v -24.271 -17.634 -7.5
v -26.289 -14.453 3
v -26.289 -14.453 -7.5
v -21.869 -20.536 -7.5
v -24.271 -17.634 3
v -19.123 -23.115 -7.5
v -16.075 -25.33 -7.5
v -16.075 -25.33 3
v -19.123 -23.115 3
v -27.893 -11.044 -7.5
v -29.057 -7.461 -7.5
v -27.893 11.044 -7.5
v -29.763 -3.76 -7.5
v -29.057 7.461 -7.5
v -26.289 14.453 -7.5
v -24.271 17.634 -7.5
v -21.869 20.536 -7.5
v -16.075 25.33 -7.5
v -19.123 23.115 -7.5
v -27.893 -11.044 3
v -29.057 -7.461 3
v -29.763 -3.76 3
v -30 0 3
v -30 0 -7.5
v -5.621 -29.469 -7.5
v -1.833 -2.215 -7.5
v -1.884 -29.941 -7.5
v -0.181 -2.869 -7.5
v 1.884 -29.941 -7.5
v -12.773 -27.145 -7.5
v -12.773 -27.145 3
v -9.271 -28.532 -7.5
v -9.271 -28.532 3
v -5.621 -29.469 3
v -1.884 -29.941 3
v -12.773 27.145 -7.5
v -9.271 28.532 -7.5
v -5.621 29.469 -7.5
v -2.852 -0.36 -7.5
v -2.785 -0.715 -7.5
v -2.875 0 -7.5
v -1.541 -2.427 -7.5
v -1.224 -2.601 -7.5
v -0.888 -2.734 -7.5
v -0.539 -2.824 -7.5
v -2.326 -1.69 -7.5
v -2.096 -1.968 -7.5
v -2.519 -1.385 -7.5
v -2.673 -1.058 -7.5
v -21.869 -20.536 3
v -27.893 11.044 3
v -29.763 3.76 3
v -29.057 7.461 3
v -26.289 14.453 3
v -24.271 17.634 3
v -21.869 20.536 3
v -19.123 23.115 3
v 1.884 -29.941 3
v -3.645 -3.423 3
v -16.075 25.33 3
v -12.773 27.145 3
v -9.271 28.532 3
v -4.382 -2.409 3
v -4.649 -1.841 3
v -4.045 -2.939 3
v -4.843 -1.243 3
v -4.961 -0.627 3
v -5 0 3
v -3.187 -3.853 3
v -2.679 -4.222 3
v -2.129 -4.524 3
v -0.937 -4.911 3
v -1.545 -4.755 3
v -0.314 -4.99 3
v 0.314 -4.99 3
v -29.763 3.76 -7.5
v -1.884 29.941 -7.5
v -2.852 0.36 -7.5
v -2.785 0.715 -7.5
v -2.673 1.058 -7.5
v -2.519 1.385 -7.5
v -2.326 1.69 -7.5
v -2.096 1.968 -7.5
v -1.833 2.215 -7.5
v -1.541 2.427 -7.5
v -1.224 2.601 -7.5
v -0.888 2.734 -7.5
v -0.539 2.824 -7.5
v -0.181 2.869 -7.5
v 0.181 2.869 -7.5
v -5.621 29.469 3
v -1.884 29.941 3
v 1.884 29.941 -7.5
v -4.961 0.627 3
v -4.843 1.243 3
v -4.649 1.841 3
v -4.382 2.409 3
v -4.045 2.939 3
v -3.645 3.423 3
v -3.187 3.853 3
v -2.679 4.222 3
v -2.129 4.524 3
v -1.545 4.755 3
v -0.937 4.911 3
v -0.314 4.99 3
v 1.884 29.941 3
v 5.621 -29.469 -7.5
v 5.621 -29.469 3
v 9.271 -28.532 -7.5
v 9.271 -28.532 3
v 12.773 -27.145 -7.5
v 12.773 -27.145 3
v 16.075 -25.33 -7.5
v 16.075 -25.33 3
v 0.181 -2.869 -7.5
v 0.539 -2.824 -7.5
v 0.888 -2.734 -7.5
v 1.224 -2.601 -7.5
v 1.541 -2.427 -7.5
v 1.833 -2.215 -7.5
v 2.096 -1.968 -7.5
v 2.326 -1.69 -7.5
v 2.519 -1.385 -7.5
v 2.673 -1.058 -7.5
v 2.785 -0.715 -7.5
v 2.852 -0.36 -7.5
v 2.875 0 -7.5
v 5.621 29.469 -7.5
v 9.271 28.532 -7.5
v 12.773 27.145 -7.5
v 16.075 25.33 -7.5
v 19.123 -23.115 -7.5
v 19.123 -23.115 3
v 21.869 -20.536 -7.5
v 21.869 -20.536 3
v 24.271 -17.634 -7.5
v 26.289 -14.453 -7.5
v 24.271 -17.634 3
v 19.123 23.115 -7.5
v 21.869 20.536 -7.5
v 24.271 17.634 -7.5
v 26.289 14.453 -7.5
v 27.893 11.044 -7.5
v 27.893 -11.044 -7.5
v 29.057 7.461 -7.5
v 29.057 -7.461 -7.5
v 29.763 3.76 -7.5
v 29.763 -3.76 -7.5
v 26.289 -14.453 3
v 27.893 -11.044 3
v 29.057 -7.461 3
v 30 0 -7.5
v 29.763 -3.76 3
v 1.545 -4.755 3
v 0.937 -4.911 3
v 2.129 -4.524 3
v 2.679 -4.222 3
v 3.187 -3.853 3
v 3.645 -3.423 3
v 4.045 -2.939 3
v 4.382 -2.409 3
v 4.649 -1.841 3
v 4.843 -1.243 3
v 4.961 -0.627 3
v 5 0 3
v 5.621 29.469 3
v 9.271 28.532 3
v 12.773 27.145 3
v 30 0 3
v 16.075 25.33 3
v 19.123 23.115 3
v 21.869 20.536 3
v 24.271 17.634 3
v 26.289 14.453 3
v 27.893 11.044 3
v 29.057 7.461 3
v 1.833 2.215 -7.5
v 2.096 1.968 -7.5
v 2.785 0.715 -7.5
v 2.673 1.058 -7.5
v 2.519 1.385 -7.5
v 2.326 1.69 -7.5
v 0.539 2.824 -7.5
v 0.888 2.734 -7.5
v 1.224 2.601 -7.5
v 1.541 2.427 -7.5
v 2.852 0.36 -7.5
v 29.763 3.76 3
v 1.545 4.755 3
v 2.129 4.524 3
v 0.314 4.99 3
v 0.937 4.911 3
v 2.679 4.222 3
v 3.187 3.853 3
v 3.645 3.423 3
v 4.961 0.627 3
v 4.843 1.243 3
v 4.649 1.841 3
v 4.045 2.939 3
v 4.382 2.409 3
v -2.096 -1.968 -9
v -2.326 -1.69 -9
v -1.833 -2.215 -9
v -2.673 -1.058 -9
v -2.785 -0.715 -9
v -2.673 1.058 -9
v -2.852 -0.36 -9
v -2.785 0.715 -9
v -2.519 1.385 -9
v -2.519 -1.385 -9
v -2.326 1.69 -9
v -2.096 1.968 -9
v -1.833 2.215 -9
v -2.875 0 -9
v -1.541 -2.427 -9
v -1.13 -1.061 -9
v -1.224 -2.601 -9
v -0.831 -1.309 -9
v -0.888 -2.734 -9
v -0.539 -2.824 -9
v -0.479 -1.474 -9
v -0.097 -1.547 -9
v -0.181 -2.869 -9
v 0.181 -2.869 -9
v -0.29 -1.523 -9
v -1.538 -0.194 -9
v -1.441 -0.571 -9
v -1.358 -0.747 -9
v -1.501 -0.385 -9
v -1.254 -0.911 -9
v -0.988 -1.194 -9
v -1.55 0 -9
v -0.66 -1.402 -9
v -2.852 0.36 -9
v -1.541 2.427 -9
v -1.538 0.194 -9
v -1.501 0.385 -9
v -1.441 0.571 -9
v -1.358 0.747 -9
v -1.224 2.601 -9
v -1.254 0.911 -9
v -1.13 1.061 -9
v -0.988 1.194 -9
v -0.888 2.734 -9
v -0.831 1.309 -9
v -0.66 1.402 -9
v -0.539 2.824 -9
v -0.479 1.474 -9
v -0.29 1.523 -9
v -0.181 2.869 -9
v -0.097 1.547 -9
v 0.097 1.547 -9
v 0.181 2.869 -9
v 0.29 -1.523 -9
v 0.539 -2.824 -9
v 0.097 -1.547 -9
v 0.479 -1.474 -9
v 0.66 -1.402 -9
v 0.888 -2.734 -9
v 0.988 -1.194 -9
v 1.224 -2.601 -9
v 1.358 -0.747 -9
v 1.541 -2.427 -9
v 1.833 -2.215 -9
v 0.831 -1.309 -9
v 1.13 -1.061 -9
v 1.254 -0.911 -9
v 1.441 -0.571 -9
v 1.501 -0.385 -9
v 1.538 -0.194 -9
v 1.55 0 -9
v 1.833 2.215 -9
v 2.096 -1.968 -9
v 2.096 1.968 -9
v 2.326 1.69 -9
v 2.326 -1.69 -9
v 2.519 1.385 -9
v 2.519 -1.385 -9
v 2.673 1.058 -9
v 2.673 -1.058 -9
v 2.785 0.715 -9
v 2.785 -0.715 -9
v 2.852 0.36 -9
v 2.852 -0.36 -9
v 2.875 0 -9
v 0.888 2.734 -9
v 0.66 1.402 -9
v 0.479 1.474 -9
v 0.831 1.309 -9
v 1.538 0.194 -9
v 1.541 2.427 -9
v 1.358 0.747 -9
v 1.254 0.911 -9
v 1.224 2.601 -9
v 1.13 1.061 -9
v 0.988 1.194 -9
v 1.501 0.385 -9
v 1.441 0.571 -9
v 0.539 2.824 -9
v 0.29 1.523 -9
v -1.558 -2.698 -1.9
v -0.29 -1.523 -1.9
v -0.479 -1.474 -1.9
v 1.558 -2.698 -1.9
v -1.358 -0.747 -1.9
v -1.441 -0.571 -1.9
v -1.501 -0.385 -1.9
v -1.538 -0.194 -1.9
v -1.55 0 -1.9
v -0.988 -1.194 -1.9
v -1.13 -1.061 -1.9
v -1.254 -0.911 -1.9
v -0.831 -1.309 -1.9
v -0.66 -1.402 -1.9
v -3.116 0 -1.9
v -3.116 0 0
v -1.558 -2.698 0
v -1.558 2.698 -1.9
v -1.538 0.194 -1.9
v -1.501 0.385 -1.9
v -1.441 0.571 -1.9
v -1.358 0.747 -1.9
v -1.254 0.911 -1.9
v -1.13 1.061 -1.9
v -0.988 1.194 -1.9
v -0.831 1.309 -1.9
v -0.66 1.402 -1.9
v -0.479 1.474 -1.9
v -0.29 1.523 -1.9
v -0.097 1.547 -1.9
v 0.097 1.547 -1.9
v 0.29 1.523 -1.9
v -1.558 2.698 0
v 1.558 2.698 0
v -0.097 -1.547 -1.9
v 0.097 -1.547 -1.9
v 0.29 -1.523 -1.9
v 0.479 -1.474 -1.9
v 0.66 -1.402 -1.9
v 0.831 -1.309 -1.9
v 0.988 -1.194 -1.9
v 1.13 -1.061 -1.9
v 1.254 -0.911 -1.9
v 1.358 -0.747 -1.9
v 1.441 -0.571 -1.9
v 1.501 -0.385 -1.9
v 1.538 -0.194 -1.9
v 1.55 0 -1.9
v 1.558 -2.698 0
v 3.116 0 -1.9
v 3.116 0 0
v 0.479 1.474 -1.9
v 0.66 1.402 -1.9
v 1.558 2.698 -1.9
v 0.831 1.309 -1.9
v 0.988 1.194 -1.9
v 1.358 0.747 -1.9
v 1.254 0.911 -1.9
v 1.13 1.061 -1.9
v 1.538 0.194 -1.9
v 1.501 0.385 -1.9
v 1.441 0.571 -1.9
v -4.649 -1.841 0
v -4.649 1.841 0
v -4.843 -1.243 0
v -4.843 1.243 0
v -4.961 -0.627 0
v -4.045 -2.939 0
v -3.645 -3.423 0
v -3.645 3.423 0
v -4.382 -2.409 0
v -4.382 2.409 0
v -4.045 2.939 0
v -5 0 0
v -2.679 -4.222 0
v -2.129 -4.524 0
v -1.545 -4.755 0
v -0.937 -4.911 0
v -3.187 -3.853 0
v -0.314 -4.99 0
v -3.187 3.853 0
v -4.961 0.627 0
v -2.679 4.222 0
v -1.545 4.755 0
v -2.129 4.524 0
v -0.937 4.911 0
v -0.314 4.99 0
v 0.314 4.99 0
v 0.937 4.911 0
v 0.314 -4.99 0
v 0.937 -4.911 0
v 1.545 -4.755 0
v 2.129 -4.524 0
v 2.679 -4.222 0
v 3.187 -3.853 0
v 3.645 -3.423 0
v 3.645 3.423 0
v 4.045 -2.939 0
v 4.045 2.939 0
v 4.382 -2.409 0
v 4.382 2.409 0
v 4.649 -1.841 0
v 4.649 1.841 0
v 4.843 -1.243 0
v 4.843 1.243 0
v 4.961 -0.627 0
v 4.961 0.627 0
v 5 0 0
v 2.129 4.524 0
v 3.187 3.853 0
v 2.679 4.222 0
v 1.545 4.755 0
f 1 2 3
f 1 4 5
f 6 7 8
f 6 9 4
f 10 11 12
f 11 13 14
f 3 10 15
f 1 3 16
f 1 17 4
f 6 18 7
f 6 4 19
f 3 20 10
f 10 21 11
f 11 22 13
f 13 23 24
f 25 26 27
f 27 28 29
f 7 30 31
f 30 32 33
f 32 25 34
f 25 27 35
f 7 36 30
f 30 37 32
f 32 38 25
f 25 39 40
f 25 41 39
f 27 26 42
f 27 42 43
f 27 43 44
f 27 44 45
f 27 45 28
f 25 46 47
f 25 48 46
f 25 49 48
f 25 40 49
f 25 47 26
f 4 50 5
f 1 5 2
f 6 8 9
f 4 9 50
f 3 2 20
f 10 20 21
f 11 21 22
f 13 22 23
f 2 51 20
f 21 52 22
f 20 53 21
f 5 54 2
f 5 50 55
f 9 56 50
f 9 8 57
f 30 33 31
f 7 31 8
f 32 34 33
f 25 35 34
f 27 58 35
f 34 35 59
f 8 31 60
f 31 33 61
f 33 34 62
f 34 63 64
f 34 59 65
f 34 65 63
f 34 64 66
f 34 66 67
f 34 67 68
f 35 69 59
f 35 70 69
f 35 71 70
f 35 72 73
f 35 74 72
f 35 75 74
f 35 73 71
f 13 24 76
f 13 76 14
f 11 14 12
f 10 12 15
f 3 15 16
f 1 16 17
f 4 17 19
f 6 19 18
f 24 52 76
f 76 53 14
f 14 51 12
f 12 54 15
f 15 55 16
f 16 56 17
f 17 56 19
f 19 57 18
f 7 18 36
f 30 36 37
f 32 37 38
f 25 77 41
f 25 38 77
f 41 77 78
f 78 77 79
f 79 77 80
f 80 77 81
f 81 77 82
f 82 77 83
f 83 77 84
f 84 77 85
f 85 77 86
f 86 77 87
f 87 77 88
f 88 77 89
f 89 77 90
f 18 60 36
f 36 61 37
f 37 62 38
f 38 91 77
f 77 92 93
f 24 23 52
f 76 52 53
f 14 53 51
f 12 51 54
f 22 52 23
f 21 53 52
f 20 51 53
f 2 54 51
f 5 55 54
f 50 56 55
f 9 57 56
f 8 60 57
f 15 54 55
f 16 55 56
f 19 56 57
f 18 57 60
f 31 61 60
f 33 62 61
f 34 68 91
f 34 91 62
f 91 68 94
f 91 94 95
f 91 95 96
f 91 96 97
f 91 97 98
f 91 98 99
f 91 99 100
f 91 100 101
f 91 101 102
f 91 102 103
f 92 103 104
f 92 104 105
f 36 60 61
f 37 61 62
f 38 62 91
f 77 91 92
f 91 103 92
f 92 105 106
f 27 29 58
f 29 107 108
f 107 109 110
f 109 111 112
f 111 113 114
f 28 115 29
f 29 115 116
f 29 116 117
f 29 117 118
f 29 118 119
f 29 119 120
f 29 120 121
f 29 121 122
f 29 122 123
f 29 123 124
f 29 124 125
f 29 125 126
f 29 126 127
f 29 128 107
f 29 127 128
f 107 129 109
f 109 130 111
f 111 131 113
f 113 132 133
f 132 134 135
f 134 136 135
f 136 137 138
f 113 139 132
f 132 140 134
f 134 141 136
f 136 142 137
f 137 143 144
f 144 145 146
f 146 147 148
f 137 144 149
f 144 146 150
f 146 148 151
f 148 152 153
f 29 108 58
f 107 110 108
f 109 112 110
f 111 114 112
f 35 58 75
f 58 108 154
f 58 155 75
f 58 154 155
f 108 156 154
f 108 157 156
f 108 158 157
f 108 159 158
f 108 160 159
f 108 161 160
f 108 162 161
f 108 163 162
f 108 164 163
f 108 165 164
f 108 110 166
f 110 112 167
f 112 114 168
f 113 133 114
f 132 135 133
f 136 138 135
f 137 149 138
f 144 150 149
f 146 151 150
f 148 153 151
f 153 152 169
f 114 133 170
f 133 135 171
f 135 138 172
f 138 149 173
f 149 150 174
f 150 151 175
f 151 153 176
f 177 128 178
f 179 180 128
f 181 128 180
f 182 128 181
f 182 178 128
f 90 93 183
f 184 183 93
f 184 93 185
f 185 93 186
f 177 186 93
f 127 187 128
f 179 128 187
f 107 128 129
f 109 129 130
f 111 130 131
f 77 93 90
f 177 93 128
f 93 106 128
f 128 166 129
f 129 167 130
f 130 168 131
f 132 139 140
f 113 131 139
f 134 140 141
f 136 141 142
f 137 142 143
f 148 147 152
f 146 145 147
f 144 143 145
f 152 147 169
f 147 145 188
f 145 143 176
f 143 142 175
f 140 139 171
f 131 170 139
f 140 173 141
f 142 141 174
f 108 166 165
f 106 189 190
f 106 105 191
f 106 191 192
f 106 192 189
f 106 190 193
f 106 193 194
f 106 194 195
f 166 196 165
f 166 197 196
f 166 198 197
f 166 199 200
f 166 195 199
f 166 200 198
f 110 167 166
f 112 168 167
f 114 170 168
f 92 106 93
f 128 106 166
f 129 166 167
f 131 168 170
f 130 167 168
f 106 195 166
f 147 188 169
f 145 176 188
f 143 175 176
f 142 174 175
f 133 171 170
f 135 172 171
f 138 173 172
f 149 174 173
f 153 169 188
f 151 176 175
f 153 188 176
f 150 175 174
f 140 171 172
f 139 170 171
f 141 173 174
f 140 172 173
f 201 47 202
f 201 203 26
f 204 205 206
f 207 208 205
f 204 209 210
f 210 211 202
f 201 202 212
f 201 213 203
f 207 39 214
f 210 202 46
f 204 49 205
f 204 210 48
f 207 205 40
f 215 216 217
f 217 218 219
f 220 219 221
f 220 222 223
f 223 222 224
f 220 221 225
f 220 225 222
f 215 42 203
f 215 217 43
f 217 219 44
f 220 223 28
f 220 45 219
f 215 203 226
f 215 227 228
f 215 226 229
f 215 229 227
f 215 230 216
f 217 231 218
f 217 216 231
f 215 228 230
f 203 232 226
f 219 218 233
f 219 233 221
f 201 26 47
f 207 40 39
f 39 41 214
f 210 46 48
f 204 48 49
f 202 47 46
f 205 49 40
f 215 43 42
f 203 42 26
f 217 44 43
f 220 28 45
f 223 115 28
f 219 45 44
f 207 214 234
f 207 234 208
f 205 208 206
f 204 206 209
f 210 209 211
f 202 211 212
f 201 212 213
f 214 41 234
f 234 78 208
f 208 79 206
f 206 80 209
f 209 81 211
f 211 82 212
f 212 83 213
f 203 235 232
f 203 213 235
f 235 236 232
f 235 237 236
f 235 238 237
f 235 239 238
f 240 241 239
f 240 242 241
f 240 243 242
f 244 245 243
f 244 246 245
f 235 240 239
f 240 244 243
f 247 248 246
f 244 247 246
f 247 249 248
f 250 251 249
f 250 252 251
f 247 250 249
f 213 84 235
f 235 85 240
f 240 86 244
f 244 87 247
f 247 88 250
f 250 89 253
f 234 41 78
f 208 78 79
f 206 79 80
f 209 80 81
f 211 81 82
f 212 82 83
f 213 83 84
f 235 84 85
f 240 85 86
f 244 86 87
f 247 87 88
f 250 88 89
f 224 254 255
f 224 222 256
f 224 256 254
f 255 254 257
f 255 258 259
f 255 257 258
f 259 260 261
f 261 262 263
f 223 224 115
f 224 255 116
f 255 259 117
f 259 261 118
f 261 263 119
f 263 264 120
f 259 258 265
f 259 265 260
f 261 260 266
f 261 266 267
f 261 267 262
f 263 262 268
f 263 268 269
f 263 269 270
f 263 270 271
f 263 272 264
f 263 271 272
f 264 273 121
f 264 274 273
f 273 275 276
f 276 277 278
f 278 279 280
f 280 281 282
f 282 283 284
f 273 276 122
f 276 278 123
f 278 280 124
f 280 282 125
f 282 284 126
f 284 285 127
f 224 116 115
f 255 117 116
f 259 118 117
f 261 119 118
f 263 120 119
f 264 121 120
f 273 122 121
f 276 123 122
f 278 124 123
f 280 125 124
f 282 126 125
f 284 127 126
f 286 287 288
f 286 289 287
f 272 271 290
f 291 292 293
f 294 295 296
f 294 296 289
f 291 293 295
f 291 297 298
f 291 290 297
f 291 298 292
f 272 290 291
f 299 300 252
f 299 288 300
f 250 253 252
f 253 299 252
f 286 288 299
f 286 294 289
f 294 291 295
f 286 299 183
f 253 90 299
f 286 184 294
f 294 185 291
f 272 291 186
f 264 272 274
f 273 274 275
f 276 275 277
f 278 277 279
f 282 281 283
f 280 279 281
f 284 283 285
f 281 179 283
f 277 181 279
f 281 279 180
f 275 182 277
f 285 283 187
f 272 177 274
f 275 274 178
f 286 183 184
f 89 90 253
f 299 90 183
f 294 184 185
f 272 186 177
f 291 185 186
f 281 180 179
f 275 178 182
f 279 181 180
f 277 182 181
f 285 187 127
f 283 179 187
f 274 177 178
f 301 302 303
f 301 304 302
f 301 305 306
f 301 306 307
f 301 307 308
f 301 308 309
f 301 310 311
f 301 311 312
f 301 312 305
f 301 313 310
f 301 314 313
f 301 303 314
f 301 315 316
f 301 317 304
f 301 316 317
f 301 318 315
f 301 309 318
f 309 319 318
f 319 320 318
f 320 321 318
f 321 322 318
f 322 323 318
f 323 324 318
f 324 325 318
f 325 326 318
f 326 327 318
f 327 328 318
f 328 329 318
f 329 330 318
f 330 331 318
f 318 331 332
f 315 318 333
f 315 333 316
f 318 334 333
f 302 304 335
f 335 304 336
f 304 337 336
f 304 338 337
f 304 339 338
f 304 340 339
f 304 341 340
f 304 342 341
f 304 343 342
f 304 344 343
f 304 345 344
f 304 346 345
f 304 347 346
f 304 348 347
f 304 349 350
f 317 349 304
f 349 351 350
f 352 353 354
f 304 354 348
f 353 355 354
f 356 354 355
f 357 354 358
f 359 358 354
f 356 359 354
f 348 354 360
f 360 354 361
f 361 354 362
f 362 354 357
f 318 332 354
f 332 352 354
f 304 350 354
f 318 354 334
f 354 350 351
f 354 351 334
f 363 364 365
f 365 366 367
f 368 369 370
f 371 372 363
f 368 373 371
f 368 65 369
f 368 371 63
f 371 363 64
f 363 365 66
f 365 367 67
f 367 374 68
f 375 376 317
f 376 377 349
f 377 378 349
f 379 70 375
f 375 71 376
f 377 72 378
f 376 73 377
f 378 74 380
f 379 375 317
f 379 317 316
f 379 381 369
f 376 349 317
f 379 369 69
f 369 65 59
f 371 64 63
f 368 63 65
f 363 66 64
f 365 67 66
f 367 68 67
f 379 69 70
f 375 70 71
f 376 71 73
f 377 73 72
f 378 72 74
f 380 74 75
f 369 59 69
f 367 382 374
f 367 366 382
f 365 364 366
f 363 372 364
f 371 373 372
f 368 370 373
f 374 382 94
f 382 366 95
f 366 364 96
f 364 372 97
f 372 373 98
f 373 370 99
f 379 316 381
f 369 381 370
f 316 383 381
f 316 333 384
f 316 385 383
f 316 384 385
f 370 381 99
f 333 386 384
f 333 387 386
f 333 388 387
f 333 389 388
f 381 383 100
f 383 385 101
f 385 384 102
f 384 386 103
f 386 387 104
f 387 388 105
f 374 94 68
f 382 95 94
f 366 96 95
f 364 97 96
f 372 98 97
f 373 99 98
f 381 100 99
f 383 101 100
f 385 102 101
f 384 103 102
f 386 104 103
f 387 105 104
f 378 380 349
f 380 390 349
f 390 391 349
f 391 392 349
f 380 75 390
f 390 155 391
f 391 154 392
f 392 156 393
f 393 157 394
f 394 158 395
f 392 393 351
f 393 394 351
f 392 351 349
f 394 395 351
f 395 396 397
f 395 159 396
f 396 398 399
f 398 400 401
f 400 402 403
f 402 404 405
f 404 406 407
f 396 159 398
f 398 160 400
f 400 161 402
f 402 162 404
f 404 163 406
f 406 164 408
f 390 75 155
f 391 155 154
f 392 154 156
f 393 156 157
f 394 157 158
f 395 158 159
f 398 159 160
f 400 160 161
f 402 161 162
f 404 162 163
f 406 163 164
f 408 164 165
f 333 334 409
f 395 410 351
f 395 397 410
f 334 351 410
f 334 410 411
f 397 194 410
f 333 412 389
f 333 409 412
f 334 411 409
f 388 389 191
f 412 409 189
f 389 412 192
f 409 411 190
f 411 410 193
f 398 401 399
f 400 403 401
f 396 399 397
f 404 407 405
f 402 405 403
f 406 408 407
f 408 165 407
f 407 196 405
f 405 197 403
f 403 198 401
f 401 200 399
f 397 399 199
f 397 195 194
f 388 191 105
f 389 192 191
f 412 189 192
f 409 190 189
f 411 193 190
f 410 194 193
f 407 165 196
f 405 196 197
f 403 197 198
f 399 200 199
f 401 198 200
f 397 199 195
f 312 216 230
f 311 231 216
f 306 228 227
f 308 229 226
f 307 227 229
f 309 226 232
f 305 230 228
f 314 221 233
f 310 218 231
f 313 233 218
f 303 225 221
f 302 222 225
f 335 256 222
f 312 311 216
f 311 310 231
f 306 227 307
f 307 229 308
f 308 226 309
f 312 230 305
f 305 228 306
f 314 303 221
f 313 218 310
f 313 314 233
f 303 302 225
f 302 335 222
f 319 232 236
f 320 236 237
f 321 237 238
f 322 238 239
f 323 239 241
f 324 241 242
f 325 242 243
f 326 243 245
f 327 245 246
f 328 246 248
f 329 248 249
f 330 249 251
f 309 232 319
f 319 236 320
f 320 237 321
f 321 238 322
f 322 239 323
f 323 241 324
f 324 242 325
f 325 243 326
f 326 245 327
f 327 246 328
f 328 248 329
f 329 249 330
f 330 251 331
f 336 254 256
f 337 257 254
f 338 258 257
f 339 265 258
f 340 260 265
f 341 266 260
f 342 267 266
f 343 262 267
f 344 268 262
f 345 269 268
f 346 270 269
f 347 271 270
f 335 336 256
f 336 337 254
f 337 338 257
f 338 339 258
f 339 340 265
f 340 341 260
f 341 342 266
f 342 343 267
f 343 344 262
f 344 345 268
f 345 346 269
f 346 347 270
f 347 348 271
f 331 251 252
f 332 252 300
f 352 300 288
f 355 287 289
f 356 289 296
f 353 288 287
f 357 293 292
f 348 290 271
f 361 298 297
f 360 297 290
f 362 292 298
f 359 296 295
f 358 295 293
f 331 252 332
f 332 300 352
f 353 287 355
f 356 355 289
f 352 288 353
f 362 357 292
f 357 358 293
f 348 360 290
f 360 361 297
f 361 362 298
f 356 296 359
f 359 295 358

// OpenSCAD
$fn = 50;


difference() {
	union() {
		translate(v = [0, 0, -7.5000000000]) {
			cylinder(h = 10.5000000000, r = 30.0000000000);
		}
		#translate(v = [0, 0, -9.0000000000]) {
			cylinder(h = 9, r = 2.8750000000);
		}
	}
	union() {
		translate(v = [0, 0, 0]) {
			rotate(a = [0, 0, 0]) {
				difference() {
					union() {
						translate(v = [0, 0, -1.9000000000]) {
							linear_extrude(height = 1.9000000000) {
								polygon(points = [[3.1158000000, 0.0000000000], [1.5579000000, 2.6983619531], [-1.5579000000, 2.6983619531], [-3.1158000000, 0.0000000000], [-1.5579000000, -2.6983619531], [1.5579000000, -2.6983619531]]);
							}
						}
					}
					union();
				}
			}
		}
		#cylinder(h = 3, r = 5.0000000000);
		#translate(v = [0, 0, -100.0000000000]) {
			cylinder(h = 200, r = 1.5500000000);
		}
	}
}
